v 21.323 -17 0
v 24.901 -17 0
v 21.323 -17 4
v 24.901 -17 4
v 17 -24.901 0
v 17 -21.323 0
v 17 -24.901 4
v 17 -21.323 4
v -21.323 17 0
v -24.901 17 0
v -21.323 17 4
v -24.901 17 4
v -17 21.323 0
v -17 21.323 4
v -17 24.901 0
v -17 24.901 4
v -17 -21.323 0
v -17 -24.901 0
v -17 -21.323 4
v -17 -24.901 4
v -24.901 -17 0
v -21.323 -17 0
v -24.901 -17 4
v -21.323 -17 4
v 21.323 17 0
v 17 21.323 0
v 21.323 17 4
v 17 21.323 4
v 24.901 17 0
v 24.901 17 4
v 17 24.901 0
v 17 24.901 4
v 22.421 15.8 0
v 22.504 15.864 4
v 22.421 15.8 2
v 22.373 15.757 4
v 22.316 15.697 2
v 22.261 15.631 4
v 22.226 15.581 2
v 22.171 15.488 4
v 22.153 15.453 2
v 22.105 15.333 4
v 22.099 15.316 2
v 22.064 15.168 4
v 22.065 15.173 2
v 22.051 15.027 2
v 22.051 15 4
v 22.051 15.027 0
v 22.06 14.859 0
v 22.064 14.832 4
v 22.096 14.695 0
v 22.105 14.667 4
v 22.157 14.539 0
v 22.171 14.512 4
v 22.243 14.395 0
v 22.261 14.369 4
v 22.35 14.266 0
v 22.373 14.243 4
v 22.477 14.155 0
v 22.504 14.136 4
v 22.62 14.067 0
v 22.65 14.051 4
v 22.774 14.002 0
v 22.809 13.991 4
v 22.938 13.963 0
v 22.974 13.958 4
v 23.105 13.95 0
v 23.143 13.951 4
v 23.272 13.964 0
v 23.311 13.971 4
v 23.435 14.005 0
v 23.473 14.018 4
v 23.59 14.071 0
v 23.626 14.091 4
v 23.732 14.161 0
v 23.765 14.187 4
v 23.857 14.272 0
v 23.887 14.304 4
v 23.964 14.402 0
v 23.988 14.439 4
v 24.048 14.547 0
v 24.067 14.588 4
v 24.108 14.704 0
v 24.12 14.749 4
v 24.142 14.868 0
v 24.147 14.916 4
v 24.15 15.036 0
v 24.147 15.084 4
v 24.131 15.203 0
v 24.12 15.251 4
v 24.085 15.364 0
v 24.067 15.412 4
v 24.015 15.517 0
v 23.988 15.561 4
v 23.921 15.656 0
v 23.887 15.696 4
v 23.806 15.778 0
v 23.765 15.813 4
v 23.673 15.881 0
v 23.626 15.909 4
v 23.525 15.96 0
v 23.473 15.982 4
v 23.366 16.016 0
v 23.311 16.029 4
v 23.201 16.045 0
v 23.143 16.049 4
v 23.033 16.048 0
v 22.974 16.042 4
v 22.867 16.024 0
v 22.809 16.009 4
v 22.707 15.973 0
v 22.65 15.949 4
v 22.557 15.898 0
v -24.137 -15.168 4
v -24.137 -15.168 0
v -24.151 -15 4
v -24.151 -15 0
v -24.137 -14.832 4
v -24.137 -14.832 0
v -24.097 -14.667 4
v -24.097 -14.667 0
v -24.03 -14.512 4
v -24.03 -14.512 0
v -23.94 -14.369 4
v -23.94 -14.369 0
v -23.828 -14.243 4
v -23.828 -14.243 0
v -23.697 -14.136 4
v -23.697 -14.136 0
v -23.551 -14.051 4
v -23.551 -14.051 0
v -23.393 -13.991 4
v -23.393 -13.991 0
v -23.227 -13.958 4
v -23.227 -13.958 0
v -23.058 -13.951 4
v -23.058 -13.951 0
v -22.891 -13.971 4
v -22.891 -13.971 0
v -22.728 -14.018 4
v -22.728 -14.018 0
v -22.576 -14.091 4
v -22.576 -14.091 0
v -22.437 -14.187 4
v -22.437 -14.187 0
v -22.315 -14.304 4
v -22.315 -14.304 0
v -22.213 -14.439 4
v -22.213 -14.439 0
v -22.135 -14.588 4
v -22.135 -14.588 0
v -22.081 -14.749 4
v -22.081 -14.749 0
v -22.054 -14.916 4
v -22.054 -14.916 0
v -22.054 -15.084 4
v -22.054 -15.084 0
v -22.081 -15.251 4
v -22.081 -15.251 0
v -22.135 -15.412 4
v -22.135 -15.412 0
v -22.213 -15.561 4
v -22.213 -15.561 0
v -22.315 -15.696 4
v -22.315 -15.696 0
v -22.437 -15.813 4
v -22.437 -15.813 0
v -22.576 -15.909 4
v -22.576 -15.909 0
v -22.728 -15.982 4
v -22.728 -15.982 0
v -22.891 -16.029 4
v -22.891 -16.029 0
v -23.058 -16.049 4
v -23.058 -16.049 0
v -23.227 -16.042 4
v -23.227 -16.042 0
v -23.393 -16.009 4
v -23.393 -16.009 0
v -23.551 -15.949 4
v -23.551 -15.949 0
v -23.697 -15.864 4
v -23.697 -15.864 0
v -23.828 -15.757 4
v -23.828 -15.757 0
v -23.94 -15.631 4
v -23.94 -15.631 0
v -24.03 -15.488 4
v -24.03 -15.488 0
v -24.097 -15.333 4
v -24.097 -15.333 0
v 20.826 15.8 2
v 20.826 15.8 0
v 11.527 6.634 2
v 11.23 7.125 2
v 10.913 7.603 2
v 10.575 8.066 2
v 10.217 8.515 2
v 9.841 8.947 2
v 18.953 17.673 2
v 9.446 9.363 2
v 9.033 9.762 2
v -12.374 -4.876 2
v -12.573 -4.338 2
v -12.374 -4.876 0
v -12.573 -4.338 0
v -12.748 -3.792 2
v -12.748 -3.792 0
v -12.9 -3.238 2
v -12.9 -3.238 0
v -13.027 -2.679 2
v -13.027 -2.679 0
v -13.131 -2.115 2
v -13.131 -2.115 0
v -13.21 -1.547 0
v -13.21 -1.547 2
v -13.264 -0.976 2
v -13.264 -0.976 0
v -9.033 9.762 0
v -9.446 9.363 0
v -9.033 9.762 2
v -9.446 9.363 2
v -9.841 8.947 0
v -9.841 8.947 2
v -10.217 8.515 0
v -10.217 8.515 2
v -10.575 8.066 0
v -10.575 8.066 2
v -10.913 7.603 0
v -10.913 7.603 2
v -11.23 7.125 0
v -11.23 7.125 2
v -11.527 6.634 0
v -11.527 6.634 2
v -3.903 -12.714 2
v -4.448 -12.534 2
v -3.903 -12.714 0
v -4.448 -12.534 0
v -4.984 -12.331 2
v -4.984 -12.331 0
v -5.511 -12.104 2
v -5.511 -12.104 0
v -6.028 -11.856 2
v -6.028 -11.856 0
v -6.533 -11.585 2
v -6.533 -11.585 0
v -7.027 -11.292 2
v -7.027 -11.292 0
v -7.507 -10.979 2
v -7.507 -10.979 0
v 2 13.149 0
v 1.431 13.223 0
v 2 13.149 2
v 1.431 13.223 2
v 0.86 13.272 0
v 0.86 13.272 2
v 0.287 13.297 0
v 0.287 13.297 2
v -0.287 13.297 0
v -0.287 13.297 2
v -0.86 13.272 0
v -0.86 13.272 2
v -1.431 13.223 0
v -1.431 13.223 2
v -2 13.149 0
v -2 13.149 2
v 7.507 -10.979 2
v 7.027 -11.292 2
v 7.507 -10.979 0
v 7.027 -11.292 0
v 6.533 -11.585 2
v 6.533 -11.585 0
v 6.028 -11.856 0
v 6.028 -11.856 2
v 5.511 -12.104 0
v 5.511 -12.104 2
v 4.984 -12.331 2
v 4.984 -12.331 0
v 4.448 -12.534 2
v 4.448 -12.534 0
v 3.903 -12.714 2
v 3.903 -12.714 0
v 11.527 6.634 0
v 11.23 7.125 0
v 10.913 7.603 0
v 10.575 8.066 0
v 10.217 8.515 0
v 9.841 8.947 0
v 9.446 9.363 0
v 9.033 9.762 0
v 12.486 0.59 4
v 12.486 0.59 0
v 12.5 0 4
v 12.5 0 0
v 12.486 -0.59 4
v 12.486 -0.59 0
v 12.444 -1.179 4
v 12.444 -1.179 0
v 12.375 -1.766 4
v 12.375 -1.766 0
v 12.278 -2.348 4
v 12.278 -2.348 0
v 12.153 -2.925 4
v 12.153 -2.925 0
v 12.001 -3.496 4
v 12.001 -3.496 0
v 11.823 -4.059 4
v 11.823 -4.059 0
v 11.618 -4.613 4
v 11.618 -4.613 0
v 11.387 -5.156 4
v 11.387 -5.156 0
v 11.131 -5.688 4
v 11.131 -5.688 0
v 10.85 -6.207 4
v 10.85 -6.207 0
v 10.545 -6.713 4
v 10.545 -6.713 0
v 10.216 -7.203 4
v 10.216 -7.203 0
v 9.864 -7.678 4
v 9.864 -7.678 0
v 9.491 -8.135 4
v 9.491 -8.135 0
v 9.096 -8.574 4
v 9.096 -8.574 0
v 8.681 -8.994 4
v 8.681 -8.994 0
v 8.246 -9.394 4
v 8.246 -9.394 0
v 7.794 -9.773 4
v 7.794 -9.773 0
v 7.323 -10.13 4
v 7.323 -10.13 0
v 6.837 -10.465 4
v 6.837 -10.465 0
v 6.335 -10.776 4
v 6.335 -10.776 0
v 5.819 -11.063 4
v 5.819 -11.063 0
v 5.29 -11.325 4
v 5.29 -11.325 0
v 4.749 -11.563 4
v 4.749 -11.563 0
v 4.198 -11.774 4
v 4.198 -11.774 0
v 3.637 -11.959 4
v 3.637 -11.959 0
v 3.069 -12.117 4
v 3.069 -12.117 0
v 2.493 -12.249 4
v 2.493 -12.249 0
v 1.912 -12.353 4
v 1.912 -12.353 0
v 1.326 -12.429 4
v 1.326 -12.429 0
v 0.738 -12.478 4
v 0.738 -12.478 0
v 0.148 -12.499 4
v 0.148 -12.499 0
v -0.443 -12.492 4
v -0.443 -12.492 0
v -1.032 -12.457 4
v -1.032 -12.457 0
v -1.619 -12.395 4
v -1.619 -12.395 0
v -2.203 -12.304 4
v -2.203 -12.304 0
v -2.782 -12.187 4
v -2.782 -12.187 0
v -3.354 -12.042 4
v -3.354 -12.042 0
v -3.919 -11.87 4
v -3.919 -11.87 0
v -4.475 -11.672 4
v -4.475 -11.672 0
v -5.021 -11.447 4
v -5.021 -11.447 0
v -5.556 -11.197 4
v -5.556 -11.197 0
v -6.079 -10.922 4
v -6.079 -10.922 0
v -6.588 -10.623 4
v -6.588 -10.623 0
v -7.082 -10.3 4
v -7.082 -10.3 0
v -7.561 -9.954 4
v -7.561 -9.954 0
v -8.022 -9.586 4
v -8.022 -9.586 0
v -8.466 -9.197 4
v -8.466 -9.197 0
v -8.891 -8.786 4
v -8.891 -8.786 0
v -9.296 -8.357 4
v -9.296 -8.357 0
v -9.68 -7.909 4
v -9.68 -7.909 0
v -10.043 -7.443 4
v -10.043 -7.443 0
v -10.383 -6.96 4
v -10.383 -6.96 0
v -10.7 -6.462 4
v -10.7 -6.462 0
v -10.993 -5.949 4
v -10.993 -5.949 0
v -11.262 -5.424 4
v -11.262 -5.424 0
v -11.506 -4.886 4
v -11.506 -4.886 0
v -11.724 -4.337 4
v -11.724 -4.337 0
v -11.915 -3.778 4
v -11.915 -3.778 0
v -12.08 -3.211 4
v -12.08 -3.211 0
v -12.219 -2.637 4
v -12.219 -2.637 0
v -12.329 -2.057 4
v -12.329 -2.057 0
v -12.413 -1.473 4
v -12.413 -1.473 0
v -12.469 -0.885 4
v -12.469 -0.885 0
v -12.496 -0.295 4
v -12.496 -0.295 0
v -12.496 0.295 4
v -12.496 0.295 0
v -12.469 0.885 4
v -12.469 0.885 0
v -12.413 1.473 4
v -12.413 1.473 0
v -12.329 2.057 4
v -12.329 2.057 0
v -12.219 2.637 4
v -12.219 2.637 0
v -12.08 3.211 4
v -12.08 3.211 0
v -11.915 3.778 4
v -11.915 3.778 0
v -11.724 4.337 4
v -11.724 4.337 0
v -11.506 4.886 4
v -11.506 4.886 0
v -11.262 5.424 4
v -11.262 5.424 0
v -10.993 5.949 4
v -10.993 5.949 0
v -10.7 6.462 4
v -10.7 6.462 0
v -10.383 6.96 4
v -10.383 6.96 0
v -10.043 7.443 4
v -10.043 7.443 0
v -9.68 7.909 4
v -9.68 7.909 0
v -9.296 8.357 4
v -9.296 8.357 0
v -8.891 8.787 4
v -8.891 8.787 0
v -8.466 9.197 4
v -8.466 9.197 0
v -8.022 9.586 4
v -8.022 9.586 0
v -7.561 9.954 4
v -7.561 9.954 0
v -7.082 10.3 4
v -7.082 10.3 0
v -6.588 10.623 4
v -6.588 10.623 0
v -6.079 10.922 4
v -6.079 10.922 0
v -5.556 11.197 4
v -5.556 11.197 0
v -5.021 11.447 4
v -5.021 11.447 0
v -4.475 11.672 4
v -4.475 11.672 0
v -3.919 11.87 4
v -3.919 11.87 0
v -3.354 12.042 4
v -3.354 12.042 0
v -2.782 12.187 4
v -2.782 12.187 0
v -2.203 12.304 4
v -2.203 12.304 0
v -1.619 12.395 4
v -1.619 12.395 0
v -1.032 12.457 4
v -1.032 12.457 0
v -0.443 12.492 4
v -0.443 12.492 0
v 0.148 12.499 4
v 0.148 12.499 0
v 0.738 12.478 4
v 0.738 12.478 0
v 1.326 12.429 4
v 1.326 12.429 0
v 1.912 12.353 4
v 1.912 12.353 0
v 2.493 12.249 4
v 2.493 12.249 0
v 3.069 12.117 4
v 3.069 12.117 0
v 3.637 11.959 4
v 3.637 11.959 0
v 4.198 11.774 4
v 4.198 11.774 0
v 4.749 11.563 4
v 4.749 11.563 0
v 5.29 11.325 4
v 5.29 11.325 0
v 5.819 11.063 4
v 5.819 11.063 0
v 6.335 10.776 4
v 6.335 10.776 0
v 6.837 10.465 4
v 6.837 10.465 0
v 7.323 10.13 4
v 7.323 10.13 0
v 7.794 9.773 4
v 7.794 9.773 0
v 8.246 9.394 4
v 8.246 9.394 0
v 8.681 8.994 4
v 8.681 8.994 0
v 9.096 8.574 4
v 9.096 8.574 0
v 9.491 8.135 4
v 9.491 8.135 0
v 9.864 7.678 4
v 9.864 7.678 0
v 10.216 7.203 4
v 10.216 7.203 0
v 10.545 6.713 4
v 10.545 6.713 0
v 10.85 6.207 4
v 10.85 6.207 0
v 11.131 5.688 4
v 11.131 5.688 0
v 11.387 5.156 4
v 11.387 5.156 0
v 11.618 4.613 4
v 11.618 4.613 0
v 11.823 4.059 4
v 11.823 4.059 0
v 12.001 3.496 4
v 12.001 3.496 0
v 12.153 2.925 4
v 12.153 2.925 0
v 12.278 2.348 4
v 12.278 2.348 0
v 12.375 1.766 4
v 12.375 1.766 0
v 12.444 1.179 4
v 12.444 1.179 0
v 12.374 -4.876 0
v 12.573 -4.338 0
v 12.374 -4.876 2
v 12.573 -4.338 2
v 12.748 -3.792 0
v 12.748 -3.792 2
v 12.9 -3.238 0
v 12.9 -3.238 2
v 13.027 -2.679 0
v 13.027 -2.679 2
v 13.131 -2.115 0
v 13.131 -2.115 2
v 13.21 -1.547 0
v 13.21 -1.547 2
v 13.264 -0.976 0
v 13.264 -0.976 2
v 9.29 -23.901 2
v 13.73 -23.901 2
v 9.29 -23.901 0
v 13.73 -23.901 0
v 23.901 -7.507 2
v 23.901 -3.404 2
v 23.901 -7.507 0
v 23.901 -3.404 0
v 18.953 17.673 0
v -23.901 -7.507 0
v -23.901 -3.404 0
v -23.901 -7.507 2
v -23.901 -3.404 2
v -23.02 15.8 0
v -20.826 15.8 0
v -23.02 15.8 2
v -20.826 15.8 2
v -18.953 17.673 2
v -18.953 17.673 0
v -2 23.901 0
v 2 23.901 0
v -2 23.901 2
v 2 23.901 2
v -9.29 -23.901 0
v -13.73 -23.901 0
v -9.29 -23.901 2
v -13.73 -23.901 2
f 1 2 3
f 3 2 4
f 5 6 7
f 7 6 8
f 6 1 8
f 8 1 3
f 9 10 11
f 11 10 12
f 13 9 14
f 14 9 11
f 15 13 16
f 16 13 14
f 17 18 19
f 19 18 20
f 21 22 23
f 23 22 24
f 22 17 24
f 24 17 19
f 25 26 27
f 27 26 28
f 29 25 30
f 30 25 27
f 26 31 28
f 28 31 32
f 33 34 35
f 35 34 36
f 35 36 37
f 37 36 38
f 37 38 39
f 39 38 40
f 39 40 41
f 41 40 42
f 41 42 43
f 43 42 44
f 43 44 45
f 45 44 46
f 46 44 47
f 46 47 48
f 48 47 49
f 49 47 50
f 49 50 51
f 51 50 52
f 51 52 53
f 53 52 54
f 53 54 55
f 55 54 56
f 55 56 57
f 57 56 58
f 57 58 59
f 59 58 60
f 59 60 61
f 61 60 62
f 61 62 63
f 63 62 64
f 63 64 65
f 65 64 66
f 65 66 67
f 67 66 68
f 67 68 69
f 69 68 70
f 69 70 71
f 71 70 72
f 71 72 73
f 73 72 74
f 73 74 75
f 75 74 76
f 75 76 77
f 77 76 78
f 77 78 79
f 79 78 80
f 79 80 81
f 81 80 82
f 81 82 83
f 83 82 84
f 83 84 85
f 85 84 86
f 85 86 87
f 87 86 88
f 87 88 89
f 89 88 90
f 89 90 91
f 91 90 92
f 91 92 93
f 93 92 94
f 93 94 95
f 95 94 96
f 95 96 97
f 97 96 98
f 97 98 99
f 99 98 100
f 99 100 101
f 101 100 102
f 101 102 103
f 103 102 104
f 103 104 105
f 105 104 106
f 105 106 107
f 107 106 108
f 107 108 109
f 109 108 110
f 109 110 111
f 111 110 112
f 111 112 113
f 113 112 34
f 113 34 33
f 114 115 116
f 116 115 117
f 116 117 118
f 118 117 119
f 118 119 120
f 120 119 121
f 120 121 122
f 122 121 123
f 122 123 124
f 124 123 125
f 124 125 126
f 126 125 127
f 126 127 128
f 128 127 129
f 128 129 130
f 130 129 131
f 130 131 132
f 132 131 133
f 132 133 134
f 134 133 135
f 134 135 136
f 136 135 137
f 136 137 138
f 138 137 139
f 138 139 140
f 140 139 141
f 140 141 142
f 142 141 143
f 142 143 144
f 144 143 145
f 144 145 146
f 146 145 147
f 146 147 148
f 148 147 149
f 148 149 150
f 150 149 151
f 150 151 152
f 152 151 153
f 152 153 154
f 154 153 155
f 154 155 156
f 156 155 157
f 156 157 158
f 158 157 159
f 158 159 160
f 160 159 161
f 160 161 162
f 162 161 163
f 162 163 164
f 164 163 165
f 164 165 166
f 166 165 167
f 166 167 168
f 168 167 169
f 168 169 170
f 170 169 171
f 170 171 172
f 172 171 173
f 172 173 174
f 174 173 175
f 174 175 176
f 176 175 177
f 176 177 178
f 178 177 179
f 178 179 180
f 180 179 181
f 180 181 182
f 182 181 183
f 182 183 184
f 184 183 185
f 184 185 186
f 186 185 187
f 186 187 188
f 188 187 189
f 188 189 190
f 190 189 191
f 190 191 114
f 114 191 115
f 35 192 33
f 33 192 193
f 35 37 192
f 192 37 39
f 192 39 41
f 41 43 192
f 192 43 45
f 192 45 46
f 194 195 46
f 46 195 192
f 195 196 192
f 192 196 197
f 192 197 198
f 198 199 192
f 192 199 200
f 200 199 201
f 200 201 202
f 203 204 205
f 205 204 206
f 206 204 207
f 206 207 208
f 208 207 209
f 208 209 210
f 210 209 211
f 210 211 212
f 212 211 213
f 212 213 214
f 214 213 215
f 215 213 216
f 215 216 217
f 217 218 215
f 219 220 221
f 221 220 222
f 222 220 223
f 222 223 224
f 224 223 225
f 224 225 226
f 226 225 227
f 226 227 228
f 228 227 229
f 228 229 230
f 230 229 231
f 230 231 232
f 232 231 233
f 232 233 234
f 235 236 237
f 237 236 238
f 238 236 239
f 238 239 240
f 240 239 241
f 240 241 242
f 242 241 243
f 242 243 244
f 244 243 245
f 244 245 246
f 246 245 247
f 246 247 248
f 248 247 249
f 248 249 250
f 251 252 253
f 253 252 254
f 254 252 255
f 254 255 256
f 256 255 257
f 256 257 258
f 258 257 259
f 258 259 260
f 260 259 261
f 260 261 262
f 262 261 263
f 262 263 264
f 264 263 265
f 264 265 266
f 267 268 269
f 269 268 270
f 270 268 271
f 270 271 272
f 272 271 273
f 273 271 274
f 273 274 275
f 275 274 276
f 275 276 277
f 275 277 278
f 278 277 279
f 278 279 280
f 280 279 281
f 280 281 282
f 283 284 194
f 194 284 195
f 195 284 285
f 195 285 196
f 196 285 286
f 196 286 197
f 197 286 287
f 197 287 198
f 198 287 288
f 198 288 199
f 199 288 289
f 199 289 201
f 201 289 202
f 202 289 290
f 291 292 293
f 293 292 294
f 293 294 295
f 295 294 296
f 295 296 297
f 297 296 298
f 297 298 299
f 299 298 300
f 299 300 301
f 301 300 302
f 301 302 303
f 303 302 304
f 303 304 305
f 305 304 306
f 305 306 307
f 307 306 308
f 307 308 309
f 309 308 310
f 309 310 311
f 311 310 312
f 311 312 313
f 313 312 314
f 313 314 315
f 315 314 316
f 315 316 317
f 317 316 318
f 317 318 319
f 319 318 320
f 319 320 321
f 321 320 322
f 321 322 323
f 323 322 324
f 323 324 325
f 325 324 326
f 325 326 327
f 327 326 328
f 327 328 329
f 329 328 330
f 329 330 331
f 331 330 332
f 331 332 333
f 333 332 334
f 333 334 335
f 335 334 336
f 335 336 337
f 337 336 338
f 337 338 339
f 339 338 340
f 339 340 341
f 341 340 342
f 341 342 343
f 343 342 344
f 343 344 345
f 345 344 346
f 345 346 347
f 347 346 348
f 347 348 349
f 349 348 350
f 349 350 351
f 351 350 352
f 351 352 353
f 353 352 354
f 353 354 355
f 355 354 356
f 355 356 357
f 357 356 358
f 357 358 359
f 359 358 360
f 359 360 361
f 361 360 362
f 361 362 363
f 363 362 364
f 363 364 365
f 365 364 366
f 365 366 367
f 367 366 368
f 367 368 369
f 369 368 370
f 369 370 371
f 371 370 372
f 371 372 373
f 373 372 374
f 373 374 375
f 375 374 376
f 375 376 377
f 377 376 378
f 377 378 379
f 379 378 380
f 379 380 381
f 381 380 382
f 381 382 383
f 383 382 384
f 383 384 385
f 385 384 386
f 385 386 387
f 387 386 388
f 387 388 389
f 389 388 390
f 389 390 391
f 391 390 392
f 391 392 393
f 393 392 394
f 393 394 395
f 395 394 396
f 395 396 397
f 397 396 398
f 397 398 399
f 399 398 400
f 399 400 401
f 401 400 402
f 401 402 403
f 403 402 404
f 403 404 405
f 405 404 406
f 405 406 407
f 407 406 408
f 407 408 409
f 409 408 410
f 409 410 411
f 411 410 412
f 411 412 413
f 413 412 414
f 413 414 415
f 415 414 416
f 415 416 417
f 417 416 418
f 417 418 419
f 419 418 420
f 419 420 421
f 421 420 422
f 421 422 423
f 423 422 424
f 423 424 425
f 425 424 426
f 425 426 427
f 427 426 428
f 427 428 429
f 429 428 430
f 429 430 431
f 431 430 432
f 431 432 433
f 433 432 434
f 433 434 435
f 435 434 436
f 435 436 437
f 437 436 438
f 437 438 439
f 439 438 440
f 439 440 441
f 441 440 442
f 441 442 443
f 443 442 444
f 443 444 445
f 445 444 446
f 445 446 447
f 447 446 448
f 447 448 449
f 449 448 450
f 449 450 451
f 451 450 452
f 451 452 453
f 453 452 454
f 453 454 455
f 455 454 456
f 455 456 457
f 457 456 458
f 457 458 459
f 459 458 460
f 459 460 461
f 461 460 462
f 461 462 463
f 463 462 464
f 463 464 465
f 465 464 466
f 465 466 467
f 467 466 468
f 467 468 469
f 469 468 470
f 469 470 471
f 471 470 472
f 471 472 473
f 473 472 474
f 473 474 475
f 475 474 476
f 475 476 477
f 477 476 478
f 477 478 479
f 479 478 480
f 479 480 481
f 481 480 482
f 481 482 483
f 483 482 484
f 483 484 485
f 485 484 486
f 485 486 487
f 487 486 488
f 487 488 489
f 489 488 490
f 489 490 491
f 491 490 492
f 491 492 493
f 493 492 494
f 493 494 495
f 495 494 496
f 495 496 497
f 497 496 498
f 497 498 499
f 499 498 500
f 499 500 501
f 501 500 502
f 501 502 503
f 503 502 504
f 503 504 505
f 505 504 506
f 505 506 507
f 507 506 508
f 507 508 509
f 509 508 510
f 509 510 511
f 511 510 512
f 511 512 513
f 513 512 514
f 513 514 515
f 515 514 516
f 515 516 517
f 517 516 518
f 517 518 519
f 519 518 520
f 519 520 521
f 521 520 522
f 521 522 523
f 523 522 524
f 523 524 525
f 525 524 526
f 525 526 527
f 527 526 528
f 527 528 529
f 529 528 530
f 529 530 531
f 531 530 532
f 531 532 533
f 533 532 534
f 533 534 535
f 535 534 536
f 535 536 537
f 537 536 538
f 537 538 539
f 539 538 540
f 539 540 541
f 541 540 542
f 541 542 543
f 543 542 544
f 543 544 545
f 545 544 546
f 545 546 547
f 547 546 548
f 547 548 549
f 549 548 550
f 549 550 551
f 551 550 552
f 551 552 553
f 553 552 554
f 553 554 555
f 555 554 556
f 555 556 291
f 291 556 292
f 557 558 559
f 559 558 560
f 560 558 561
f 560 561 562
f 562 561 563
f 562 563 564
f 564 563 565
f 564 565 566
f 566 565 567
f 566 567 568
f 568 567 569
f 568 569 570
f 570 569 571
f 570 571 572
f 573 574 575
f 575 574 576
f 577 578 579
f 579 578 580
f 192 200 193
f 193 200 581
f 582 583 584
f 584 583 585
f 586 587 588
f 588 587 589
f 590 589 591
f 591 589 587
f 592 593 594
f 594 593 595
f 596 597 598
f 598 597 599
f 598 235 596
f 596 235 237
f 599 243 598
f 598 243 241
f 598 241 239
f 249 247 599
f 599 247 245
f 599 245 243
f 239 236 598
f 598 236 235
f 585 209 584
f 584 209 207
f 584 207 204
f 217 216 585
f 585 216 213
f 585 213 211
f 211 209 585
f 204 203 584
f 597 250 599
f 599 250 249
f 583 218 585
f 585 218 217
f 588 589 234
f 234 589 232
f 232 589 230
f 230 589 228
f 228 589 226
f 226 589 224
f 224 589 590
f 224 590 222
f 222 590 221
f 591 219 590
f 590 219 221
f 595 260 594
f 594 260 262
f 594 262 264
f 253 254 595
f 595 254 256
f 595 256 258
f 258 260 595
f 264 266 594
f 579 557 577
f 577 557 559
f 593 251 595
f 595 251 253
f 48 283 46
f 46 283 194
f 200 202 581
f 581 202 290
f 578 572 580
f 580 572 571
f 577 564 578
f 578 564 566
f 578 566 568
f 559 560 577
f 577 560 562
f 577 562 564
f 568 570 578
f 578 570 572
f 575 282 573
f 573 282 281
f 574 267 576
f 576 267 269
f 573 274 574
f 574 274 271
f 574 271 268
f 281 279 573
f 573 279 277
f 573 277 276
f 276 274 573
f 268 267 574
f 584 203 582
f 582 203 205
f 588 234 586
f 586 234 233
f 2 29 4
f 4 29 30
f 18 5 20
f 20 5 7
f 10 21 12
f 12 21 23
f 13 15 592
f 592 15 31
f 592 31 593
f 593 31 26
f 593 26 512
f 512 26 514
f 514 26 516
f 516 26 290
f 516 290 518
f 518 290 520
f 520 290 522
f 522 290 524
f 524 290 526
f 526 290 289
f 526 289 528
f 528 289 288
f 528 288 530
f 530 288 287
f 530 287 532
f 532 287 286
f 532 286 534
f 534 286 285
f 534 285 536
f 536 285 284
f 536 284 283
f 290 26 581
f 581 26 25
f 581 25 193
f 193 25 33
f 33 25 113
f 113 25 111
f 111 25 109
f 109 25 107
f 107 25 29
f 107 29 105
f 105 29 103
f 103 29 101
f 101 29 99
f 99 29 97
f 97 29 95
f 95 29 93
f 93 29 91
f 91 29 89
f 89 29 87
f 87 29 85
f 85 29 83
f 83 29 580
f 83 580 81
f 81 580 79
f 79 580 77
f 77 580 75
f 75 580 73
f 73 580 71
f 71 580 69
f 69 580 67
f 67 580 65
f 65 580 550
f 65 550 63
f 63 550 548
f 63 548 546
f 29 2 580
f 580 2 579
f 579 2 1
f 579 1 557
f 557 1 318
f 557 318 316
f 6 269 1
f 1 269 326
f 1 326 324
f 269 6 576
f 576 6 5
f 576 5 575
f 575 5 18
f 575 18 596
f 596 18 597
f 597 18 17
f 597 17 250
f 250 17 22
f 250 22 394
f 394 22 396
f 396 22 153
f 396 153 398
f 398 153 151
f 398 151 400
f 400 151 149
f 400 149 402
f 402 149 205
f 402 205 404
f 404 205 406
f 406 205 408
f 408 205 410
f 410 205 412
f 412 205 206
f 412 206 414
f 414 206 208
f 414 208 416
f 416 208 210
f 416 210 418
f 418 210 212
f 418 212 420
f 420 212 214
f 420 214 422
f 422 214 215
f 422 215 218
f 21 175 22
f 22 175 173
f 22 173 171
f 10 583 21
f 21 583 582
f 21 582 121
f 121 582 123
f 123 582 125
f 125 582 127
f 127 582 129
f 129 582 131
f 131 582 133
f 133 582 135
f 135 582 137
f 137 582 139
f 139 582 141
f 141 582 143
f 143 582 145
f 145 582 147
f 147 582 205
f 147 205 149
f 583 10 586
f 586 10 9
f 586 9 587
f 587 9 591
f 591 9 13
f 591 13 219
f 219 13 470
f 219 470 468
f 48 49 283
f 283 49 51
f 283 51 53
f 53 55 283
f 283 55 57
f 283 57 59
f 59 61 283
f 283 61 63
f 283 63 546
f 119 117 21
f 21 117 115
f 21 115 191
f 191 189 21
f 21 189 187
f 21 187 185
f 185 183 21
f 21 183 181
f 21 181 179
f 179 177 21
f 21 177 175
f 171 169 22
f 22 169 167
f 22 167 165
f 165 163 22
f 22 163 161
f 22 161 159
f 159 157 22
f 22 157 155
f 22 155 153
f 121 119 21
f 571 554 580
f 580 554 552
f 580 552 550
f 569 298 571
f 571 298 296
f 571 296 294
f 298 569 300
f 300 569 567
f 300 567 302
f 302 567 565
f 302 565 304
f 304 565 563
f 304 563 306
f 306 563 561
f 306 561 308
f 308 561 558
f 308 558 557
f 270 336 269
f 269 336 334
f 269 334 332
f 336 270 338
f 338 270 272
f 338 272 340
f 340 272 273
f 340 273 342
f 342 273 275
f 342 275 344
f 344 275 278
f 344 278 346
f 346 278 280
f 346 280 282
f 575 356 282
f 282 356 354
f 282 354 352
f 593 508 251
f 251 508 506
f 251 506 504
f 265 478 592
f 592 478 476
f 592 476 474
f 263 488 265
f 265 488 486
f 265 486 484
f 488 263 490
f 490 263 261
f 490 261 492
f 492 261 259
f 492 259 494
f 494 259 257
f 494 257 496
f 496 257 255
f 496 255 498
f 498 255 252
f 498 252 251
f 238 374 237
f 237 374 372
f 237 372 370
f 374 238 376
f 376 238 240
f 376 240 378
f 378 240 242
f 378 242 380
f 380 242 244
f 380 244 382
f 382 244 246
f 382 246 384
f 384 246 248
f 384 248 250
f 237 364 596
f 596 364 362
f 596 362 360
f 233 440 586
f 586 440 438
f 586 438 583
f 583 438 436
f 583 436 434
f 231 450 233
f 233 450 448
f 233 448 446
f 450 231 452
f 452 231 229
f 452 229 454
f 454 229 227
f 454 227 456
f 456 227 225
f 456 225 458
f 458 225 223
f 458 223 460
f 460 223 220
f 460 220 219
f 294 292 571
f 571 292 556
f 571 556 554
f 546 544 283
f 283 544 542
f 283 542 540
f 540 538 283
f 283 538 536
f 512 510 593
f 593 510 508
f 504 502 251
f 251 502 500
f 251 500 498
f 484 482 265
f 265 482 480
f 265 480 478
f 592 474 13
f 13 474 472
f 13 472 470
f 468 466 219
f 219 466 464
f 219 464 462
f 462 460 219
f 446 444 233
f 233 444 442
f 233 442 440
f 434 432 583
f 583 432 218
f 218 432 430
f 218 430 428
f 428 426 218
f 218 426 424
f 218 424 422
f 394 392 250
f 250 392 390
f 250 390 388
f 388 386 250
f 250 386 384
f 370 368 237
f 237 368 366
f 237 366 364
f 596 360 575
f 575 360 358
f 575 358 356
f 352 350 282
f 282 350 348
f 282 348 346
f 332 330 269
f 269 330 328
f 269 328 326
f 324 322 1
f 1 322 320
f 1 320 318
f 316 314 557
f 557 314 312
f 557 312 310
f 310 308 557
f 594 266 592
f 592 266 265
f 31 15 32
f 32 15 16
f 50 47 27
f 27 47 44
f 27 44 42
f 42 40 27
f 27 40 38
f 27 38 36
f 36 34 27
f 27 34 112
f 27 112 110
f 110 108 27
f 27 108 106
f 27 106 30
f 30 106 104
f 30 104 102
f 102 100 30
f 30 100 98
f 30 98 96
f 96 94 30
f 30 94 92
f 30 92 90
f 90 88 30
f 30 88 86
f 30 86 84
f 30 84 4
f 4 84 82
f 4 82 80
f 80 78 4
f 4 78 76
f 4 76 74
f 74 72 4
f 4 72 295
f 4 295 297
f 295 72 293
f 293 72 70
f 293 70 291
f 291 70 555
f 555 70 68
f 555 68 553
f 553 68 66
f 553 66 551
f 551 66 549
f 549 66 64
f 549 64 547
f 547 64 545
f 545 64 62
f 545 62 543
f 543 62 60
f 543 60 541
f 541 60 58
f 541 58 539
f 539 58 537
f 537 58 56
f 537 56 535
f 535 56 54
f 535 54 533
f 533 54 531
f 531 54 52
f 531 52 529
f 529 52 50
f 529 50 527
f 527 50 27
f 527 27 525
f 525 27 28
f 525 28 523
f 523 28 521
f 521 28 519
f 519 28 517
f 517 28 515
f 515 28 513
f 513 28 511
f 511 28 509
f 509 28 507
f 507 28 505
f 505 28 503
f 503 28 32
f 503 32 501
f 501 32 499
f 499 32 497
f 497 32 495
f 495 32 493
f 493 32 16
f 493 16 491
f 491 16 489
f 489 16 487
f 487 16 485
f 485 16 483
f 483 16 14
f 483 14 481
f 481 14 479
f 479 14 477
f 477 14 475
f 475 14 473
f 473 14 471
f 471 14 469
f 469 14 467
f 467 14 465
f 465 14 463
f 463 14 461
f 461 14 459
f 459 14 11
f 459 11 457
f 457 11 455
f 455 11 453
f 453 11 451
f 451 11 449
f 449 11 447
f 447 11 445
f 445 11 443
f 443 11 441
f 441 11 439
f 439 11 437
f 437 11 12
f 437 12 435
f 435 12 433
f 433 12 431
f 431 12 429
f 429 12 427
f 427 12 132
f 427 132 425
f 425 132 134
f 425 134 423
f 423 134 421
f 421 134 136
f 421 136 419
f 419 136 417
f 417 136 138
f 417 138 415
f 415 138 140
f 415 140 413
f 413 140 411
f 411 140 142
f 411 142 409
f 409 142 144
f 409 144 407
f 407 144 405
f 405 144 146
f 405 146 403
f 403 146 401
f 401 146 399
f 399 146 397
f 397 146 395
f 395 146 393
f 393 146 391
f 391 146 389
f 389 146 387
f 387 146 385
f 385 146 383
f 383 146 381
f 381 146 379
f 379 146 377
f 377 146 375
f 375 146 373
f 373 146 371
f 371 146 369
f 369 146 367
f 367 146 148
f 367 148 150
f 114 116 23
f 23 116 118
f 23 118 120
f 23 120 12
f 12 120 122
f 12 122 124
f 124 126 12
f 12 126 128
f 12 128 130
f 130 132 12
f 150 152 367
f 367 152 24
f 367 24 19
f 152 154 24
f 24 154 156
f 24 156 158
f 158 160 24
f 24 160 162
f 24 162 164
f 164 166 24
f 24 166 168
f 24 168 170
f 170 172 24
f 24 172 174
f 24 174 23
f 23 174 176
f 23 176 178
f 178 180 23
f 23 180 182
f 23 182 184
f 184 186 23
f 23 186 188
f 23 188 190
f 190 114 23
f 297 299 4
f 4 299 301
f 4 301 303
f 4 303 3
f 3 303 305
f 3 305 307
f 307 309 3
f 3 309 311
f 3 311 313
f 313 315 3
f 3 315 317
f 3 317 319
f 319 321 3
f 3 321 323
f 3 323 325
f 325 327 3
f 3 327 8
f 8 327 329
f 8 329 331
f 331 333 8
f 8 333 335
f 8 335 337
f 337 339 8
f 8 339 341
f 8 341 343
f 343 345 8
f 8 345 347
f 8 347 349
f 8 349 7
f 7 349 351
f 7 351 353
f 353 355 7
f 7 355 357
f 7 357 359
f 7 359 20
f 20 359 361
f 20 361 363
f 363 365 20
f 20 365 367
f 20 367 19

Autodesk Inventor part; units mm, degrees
ref_plane "YZ Plane" through (0, 0, 0) normal (1, 0, 0) x (0, 1, 0)
ref_plane "XZ Plane" through (0, 0, 0) normal (0, 1, 0) x (-1, 0, 0)
ref_plane "XY Plane" through (0, 0, 0) normal (0, 0, 1) x (1, 0, 0)
sketch "Sketch1" plane through (0, 0, 0) normal (0, 0, 1) x (1, 0, 0)
  line L0 (-34.8609, 0) -> (34.8609, 0) construction
  line L1 (0, -34.8609) -> (0, 34.8609) construction
  line L2 (0, 0) -> (11.6542, 11.6542) construction
  line L3 (0, 0) -> (16.4815, 0) construction
  line L4 (0, 24.9006) -> (16.8, 24.9006)
  line L5 (16.8, 24.9006) -> (16.8, 21.2406)
  line L6 (16.8, 21.2406) -> (19.0203, 19.0203)
  line L7 (24.9006, 0) -> (24.9006, 16.8)
  line L8 (24.9006, 16.8) -> (21.2406, 16.8)
  line L9 (21.2406, 16.8) -> (19.0203, 19.0203)
  line L10 (0, 0) -> (-11.6542, 11.6542) construction
  line L11 (0, 0) -> (-16.4815, 0) construction
  line L12 (0, 24.9006) -> (-16.8, 24.9006)
  line L13 (-16.8, 24.9006) -> (-16.8, 21.2406)
  line L14 (-16.8, 21.2406) -> (-19.0203, 19.0203)
  line L15 (-24.9006, 0) -> (-24.9006, 16.8)
  line L16 (-24.9006, 16.8) -> (-21.2406, 16.8)
  line L17 (-21.2406, 16.8) -> (-19.0203, 19.0203)
  line L18 (0, 0) -> (11.6542, -11.6542) construction
  line L19 (0, -24.9006) -> (16.8, -24.9006)
  line L20 (16.8, -24.9006) -> (16.8, -21.2406)
  line L21 (16.8, -21.2406) -> (19.0203, -19.0203)
  line L22 (24.9006, 0) -> (24.9006, -16.8)
  line L23 (24.9006, -16.8) -> (21.2406, -16.8)
  line L24 (21.2406, -16.8) -> (19.0203, -19.0203)
  line L25 (0, 0) -> (-11.6542, -11.6542) construction
  line L26 (0, -24.9006) -> (-16.8, -24.9006)
  line L27 (-16.8, -24.9006) -> (-16.8, -21.2406)
  line L28 (-16.8, -21.2406) -> (-19.0203, -19.0203)
  line L29 (-24.9006, 0) -> (-24.9006, -16.8)
  line L30 (-24.9006, -16.8) -> (-21.2406, -16.8)
  line L31 (-21.2406, -16.8) -> (-19.0203, -19.0203)
  dimension "d0" = 45
  dimension "d1" = 3.14
  dimension "d2" = 3.66
  dimension "d3" = 16.8
extrude "Extrusion1" add sketch "Sketch1" along normal blind 4
hole "Hole1" at (0, 0, 0) direction (0, 0, 1) diameter 26.6 end through all
sketch "Sketch6" plane through (0, 0, 4) normal (0, 0, 1) x (1, 0, 0)
  circle A0 centre (0, 0) radius 13.3 construction
  line L0 (16.8, 24.9006) -> (-16.8, 24.9006) construction
  line L1 (-16.8, 24.9006) -> (-16.8, 21.2406) construction
  line L2 (-16.8, 21.2406) -> (-21.2406, 16.8) construction
  line L3 (-21.2406, 16.8) -> (-24.9006, 16.8) construction
  line L4 (-24.9006, 16.8) -> (-24.9006, -16.8) construction
  line L5 (-24.9006, -16.8) -> (-21.2406, -16.8) construction
  line L6 (-21.2406, -16.8) -> (-16.8, -21.2406) construction
  line L7 (-16.8, -21.2406) -> (-16.8, -24.9006) construction
  line L8 (-16.8, -24.9006) -> (16.8, -24.9006) construction
  line L9 (16.8, -24.9006) -> (16.8, -21.2406) construction
  line L10 (16.8, -21.2406) -> (21.2406, -16.8) construction
  line L11 (21.2406, -16.8) -> (24.9006, -16.8) construction
  line L12 (24.9006, -16.8) -> (24.9006, 16.8) construction
  line L13 (24.9006, 16.8) -> (21.2406, 16.8) construction
  line L14 (21.2406, 16.8) -> (16.8, 21.2406) construction
  line L15 (16.8, 21.2406) -> (16.8, 24.9006) construction
  circle A1 centre (0, 0) radius 13.3
  circle A2 centre (0, 0) radius 13.5
  dimension "d42" = 26.6
  dimension "d43" = 27
extrude "Extrusion4" [suppressed]
sketch "Sketch7" plane through (0, 0, 0) normal (0, 0, -1) x (-1, 0, 0)
  line L0 (16.8, 24.9006) -> (-16.8, 24.9006) construction
  line L1 (-16.8, 24.9006) -> (-16.8, 21.2406) construction
  line L2 (-16.8, 21.2406) -> (-21.2406, 16.8) construction
  line L3 (-21.2406, 16.8) -> (-24.9006, 16.8) construction
  line L4 (-24.9006, 16.8) -> (-24.9006, -16.8) construction
  line L5 (-24.9006, -16.8) -> (-21.2406, -16.8) construction
  line L6 (-21.2406, -16.8) -> (-16.8, -21.2406) construction
  line L7 (-16.8, -21.2406) -> (-16.8, -24.9006) construction
  line L8 (-16.8, -24.9006) -> (16.8, -24.9006) construction
  line L9 (16.8, -24.9006) -> (16.8, -21.2406) construction
  line L10 (16.8, -21.2406) -> (21.2406, -16.8) construction
  line L11 (21.2406, -16.8) -> (24.9006, -16.8) construction
  line L12 (24.9006, -16.8) -> (24.9006, 16.8) construction
  line L13 (24.9006, 16.8) -> (21.2406, 16.8) construction
  line L14 (21.2406, 16.8) -> (16.8, 21.2406) construction
  line L15 (16.8, 21.2406) -> (16.8, 24.9006) construction
  line L16 (-2.0147, 24.1761) -> (-2, 24) construction
  line L17 (-1.9775, 24.0019) -> (-1.9921, 24.178) construction
  line L18 (1.9921, 24.178) -> (1.9775, 24.0019) construction
  line L19 (2, 24) -> (2.0147, 24.1761) construction
  line L20 (5.9445, 23.5204) -> (5.9012, 23.349) construction
  line L21 (5.923, 23.3435) -> (5.9665, 23.5148) construction
  line L22 (9.7347, 22.2212) -> (9.6638, 22.0593) construction
  line L23 (9.6844, 22.0502) -> (9.7555, 22.212) construction
  line L24 (13.2594, 20.3158) -> (13.1628, 20.1678) construction
  line L25 (13.1817, 20.1555) -> (13.2784, 20.3034) construction
  line L26 (16.4225, 17.8563) -> (16.3028, 17.7262) construction
  line L27 (16.3194, 17.7109) -> (16.4392, 17.8409) construction
  line L28 (19.1375, 14.9097) -> (18.9981, 14.8011) construction
  line L29 (19.0119, 14.7833) -> (19.1515, 14.8918) construction
  line L30 (21.3306, 11.5564) -> (21.1752, 11.4722) construction
  line L31 (21.1859, 11.4524) -> (21.3414, 11.5365) construction
  line L32 (22.9418, 7.8879) -> (22.7746, 7.8305) construction
  line L33 (22.782, 7.8091) -> (22.9492, 7.8665) construction
  line L34 (23.9272, 4.0042) -> (23.7529, 3.9751) construction
  line L35 (23.7566, 3.9529) -> (23.9309, 3.9819) construction
  line L36 (24.2599, 0.0113) -> (24.0832, 0.0113) construction
  line L37 (24.0832, -0.0113) -> (24.2599, -0.0113) construction
  line L38 (23.9309, -3.9819) -> (23.7566, -3.9529) construction
  line L39 (23.7529, -3.9751) -> (23.9272, -4.0042) construction
  line L40 (22.9492, -7.8665) -> (22.782, -7.8091) construction
  line L41 (22.7746, -7.8305) -> (22.9418, -7.8879) construction
  line L42 (21.3414, -11.5365) -> (21.1859, -11.4524) construction
  line L43 (21.1752, -11.4722) -> (21.3306, -11.5564) construction
  line L44 (19.1515, -14.8918) -> (19.0119, -14.7833) construction
  line L45 (18.9981, -14.8011) -> (19.1375, -14.9097) construction
  line L46 (16.4392, -17.8409) -> (16.3194, -17.7109) construction
  line L47 (16.3028, -17.7262) -> (16.4225, -17.8563) construction
  line L48 (13.2784, -20.3034) -> (13.1817, -20.1555) construction
  line L49 (13.1628, -20.1678) -> (13.2594, -20.3158) construction
  line L50 (9.7555, -22.212) -> (9.6844, -22.0502) construction
  line L51 (9.6638, -22.0593) -> (9.7347, -22.2212) construction
  line L52 (5.9665, -23.5148) -> (5.923, -23.3435) construction
  line L53 (5.9012, -23.349) -> (5.9445, -23.5204) construction
  line L54 (2.0147, -24.1761) -> (2, -24) construction
  line L55 (1.9775, -24.0019) -> (1.9921, -24.178) construction
  line L56 (-1.9921, -24.178) -> (-1.9775, -24.0019) construction
  line L57 (-2, -24) -> (-2.0147, -24.1761) construction
  line L58 (-5.9445, -23.5204) -> (-5.9012, -23.349) construction
  line L59 (-5.923, -23.3435) -> (-5.9665, -23.5148) construction
  line L60 (-9.7347, -22.2212) -> (-9.6638, -22.0593) construction
  line L61 (-9.6844, -22.0502) -> (-9.7555, -22.212) construction
  line L62 (-13.2594, -20.3158) -> (-13.1628, -20.1678) construction
  line L63 (-13.1817, -20.1555) -> (-13.2784, -20.3034) construction
  line L64 (-16.4225, -17.8563) -> (-16.3028, -17.7262) construction
  line L65 (-16.3194, -17.7109) -> (-16.4392, -17.8409) construction
  line L66 (-19.1375, -14.9097) -> (-18.9981, -14.8011) construction
  line L67 (-19.0119, -14.7833) -> (-19.1515, -14.8918) construction
  line L68 (-21.3306, -11.5564) -> (-21.1752, -11.4722) construction
  line L69 (-21.1859, -11.4524) -> (-21.3414, -11.5365) construction
  line L70 (-22.9418, -7.8879) -> (-22.7746, -7.8305) construction
  line L71 (-22.782, -7.8091) -> (-22.9492, -7.8665) construction
  line L72 (-23.9272, -4.0042) -> (-23.7529, -3.9751) construction
  line L73 (-23.7566, -3.9529) -> (-23.9309, -3.9819) construction
  line L74 (-24.2599, -0.0113) -> (-24.0832, -0.0113) construction
  line L75 (-24.0832, 0.0113) -> (-24.2599, 0.0113) construction
  line L76 (-23.9309, 3.9819) -> (-23.7566, 3.9529) construction
  line L77 (-23.7529, 3.9751) -> (-23.9272, 4.0042) construction
  line L78 (-22.9492, 7.8665) -> (-22.782, 7.8091) construction
  line L79 (-22.7746, 7.8305) -> (-22.9418, 7.8879) construction
  line L80 (-21.3414, 11.5365) -> (-21.1859, 11.4524) construction
  line L81 (-21.1752, 11.4722) -> (-21.3306, 11.5564) construction
  line L82 (-19.1515, 14.8918) -> (-19.0119, 14.7833) construction
  line L83 (-18.9981, 14.8011) -> (-19.1375, 14.9097) construction
  line L84 (-16.4392, 17.8409) -> (-16.3194, 17.7109) construction
  line L85 (-16.3028, 17.7262) -> (-16.4225, 17.8563) construction
  line L86 (-13.2784, 20.3034) -> (-13.1817, 20.1555) construction
  line L87 (-13.1628, 20.1678) -> (-13.2594, 20.3158) construction
  line L88 (-9.7555, 22.212) -> (-9.6844, 22.0502) construction
  line L89 (-9.6638, 22.0593) -> (-9.7347, 22.2212) construction
  line L90 (-5.9665, 23.5148) -> (-5.923, 23.3435) construction
  line L91 (-5.9012, 23.349) -> (-5.9445, 23.5204) construction
  circle A0 centre (0, 24.5946) radius 2 construction
  line L92 (2, 33.2113) -> (-2, 33.2113)
  line L93 (-2, 33.2113) -> (-2, 6.8481)
  line L94 (-2, 6.8481) -> (2, 6.8481)
  line L95 (2, 6.8481) -> (2, 33.2113)
  circle A1 centre (-17.7867, 14.1844) radius 1.25 projected
  circle A2 centre (-22.1796, -5.0624) radius 1.25 projected
  circle A3 centre (-9.8709, -20.497) radius 1.25 projected
  circle A4 centre (9.8709, -20.497) radius 1.25 projected
  circle A5 centre (22.1796, -5.0624) radius 1.25 projected
  circle A6 centre (17.7867, 14.1844) radius 1.25 projected
  circle A7 centre (0, 22.75) radius 1.25 projected
  arc A8 (-2.0147, 24.1761) -> (-5.9445, 23.5204) centre (-3.9503, 23.6727) ccw projected
  arc A9 (-1.9973, 24.1039) -> (-2, 24) centre (0, 24) ccw projected
  arc A10 (-1.9775, 24.0019) -> (-1.9973, 24.1039) centre (-3.9503, 23.6727) ccw projected
  arc A11 (1.9921, 24.178) -> (-1.9921, 24.178) centre (0, 24) ccw projected
  arc A12 (1.9973, 24.1039) -> (1.9775, 24.0019) centre (3.9503, 23.6727) ccw projected
  arc A13 (2, 24) -> (1.9973, 24.1039) centre (0, 24) ccw projected
  arc A14 (5.9445, 23.5204) -> (2.0147, 24.1761) centre (3.9503, 23.6727) ccw projected
  arc A15 (5.9374, 23.4464) -> (5.9012, 23.349) centre (7.7928, 22.6996) ccw projected
  arc A16 (5.923, 23.3435) -> (5.9374, 23.4464) centre (3.9503, 23.6727) ccw projected
  arc A17 (9.7347, 22.2212) -> (5.9665, 23.5148) centre (7.7928, 22.6996) ccw projected
  arc A18 (9.7156, 22.1493) -> (9.6638, 22.0593) centre (11.4227, 21.1074) ccw projected
  arc A19 (9.6844, 22.0502) -> (9.7156, 22.1493) centre (7.7928, 22.6996) ccw projected
  arc A20 (13.2594, 20.3158) -> (9.7555, 22.212) centre (11.4227, 21.1074) ccw projected
  arc A21 (13.2287, 20.2481) -> (13.1628, 20.1678) centre (14.7411, 18.9394) ccw projected
  arc A22 (13.1817, 20.1555) -> (13.2287, 20.2481) centre (11.4227, 21.1074) ccw projected
  arc A23 (16.4225, 17.8563) -> (13.2784, 20.3034) centre (14.7411, 18.9394) ccw projected
  arc A24 (16.381, 17.7946) -> (16.3028, 17.7262) centre (17.6574, 16.2548) ccw projected
  arc A25 (16.3194, 17.7109) -> (16.381, 17.7946) centre (14.7411, 18.9394) ccw projected
  arc A26 (19.1375, 14.9097) -> (16.4392, 17.8409) centre (17.6574, 16.2548) ccw projected
  arc A27 (19.0865, 14.8556) -> (18.9981, 14.8011) centre (20.092, 13.1268) ccw projected
  arc A28 (19.0119, 14.7833) -> (19.0865, 14.8556) centre (17.6574, 16.2548) ccw projected
  arc A29 (21.3306, 11.5564) -> (19.1515, 14.8918) centre (20.092, 13.1268) ccw projected
  arc A30 (21.2714, 11.5115) -> (21.1752, 11.4722) centre (21.9786, 9.6407) ccw projected
  arc A31 (21.1859, 11.4524) -> (21.2714, 11.5115) centre (20.092, 13.1268) ccw projected
  arc A32 (22.9418, 7.8879) -> (21.3414, 11.5365) centre (21.9786, 9.6407) ccw projected
  arc A33 (22.876, 7.8533) -> (22.7746, 7.8305) centre (23.2656, 5.8917) ccw projected
  arc A34 (22.782, 7.8091) -> (22.876, 7.8533) centre (21.9786, 9.6407) ccw projected
  arc A35 (23.9272, 4.0042) -> (22.9492, 7.8665) centre (23.2656, 5.8917) ccw projected
  arc A36 (23.8566, 3.981) -> (23.7529, 3.9751) centre (23.918, 1.9819) ccw projected
  arc A37 (23.7566, 3.9529) -> (23.8566, 3.981) centre (23.2656, 5.8917) ccw projected
  arc A38 (24.2599, 0.0113) -> (23.9309, 3.9819) centre (23.918, 1.9819) ccw projected
  arc A39 (24.1865, 0) -> (24.0832, 0.0113) centre (23.918, -1.9819) ccw projected
  arc A40 (24.0832, -0.0113) -> (24.1865, 0) centre (23.918, 1.9819) ccw projected
  arc A41 (23.9309, -3.9819) -> (24.2599, -0.0113) centre (23.918, -1.9819) ccw projected
  arc A42 (23.8566, -3.981) -> (23.7566, -3.9529) centre (23.2656, -5.8917) ccw projected
  arc A43 (23.7529, -3.9751) -> (23.8566, -3.981) centre (23.918, -1.9819) ccw projected
  arc A44 (22.9492, -7.8665) -> (23.9272, -4.0042) centre (23.2656, -5.8917) ccw projected
  arc A45 (22.876, -7.8533) -> (22.782, -7.8091) centre (21.9786, -9.6407) ccw projected
  arc A46 (22.7746, -7.8305) -> (22.876, -7.8533) centre (23.2656, -5.8917) ccw projected
  arc A47 (21.3414, -11.5365) -> (22.9418, -7.8879) centre (21.9786, -9.6407) ccw projected
  arc A48 (21.2714, -11.5115) -> (21.1859, -11.4524) centre (20.092, -13.1268) ccw projected
  arc A49 (21.1752, -11.4722) -> (21.2714, -11.5115) centre (21.9786, -9.6407) ccw projected
  arc A50 (19.1515, -14.8918) -> (21.3306, -11.5564) centre (20.092, -13.1268) ccw projected
  arc A51 (19.0865, -14.8556) -> (19.0119, -14.7833) centre (17.6574, -16.2548) ccw projected
  arc A52 (18.9981, -14.8011) -> (19.0865, -14.8556) centre (20.092, -13.1268) ccw projected
  arc A53 (16.4392, -17.8409) -> (19.1375, -14.9097) centre (17.6574, -16.2548) ccw projected
  arc A54 (16.381, -17.7946) -> (16.3194, -17.7109) centre (14.7411, -18.9394) ccw projected
  arc A55 (16.3028, -17.7262) -> (16.381, -17.7946) centre (17.6574, -16.2548) ccw projected
  arc A56 (13.2784, -20.3034) -> (16.4225, -17.8563) centre (14.7411, -18.9394) ccw projected
  arc A57 (13.2287, -20.2481) -> (13.1817, -20.1555) centre (11.4227, -21.1074) ccw projected
  arc A58 (13.1628, -20.1678) -> (13.2287, -20.2481) centre (14.7411, -18.9394) ccw projected
  arc A59 (9.7555, -22.212) -> (13.2594, -20.3158) centre (11.4227, -21.1074) ccw projected
  arc A60 (9.7156, -22.1493) -> (9.6844, -22.0502) centre (7.7928, -22.6996) ccw projected
  arc A61 (9.6638, -22.0593) -> (9.7156, -22.1493) centre (11.4227, -21.1074) ccw projected
  arc A62 (5.9665, -23.5148) -> (9.7347, -22.2212) centre (7.7928, -22.6996) ccw projected
  arc A63 (5.9374, -23.4464) -> (5.923, -23.3435) centre (3.9503, -23.6727) ccw projected
  arc A64 (5.9012, -23.349) -> (5.9374, -23.4464) centre (7.7928, -22.6996) ccw projected
  arc A65 (2.0147, -24.1761) -> (5.9445, -23.5204) centre (3.9503, -23.6727) ccw projected
  arc A66 (1.9973, -24.1039) -> (2, -24) centre (0, -24) ccw projected
  arc A67 (1.9775, -24.0019) -> (1.9973, -24.1039) centre (3.9503, -23.6727) ccw projected
  arc A68 (-1.9921, -24.178) -> (1.9921, -24.178) centre (0, -24) ccw projected
  arc A69 (-1.9973, -24.1039) -> (-1.9775, -24.0019) centre (-3.9503, -23.6727) ccw projected
  arc A70 (-2, -24) -> (-1.9973, -24.1039) centre (0, -24) ccw projected
  arc A71 (-5.9445, -23.5204) -> (-2.0147, -24.1761) centre (-3.9503, -23.6727) ccw projected
  arc A72 (-5.9374, -23.4464) -> (-5.9012, -23.349) centre (-7.7928, -22.6996) ccw projected
  arc A73 (-5.923, -23.3435) -> (-5.9374, -23.4464) centre (-3.9503, -23.6727) ccw projected
  arc A74 (-9.7347, -22.2212) -> (-5.9665, -23.5148) centre (-7.7928, -22.6996) ccw projected
  arc A75 (-9.7156, -22.1493) -> (-9.6638, -22.0593) centre (-11.4227, -21.1074) ccw projected
  arc A76 (-9.6844, -22.0502) -> (-9.7156, -22.1493) centre (-7.7928, -22.6996) ccw projected
  arc A77 (-13.2594, -20.3158) -> (-9.7555, -22.212) centre (-11.4227, -21.1074) ccw projected
  arc A78 (-13.2287, -20.2481) -> (-13.1628, -20.1678) centre (-14.7411, -18.9394) ccw projected
  arc A79 (-13.1817, -20.1555) -> (-13.2287, -20.2481) centre (-11.4227, -21.1074) ccw projected
  arc A80 (-16.4225, -17.8563) -> (-13.2784, -20.3034) centre (-14.7411, -18.9394) ccw projected
  arc A81 (-16.381, -17.7946) -> (-16.3028, -17.7262) centre (-17.6574, -16.2548) ccw projected
  arc A82 (-16.3194, -17.7109) -> (-16.381, -17.7946) centre (-14.7411, -18.9394) ccw projected
  arc A83 (-19.1375, -14.9097) -> (-16.4392, -17.8409) centre (-17.6574, -16.2548) ccw projected
  arc A84 (-19.0865, -14.8556) -> (-18.9981, -14.8011) centre (-20.092, -13.1268) ccw projected
  arc A85 (-19.0119, -14.7833) -> (-19.0865, -14.8556) centre (-17.6574, -16.2548) ccw projected
  arc A86 (-21.3306, -11.5564) -> (-19.1515, -14.8918) centre (-20.092, -13.1268) ccw projected
  arc A87 (-21.2714, -11.5115) -> (-21.1752, -11.4722) centre (-21.9786, -9.6407) ccw projected
  arc A88 (-21.1859, -11.4524) -> (-21.2714, -11.5115) centre (-20.092, -13.1268) ccw projected
  arc A89 (-22.9418, -7.8879) -> (-21.3414, -11.5365) centre (-21.9786, -9.6407) ccw projected
  arc A90 (-22.876, -7.8533) -> (-22.7746, -7.8305) centre (-23.2656, -5.8917) ccw projected
  arc A91 (-22.782, -7.8091) -> (-22.876, -7.8533) centre (-21.9786, -9.6407) ccw projected
  arc A92 (-23.9272, -4.0042) -> (-22.9492, -7.8665) centre (-23.2656, -5.8917) ccw projected
  arc A93 (-23.8566, -3.981) -> (-23.7529, -3.9751) centre (-23.918, -1.9819) ccw projected
  arc A94 (-23.7566, -3.9529) -> (-23.8566, -3.981) centre (-23.2656, -5.8917) ccw projected
  arc A95 (-24.2599, -0.0113) -> (-23.9309, -3.9819) centre (-23.918, -1.9819) ccw projected
  arc A96 (-24.1865, 0) -> (-24.0832, -0.0113) centre (-23.918, 1.9819) ccw projected
  arc A97 (-24.0832, 0.0113) -> (-24.1865, 0) centre (-23.918, -1.9819) ccw projected
  arc A98 (-23.9309, 3.9819) -> (-24.2599, 0.0113) centre (-23.918, 1.9819) ccw projected
  arc A99 (-23.8566, 3.981) -> (-23.7566, 3.9529) centre (-23.2656, 5.8917) ccw projected
  arc A100 (-23.7529, 3.9751) -> (-23.8566, 3.981) centre (-23.918, 1.9819) ccw projected
  arc A101 (-22.9492, 7.8665) -> (-23.9272, 4.0042) centre (-23.2656, 5.8917) ccw projected
  arc A102 (-22.876, 7.8533) -> (-22.782, 7.8091) centre (-21.9786, 9.6407) ccw projected
  arc A103 (-22.7746, 7.8305) -> (-22.876, 7.8533) centre (-23.2656, 5.8917) ccw projected
  arc A104 (-21.3414, 11.5365) -> (-22.9418, 7.8879) centre (-21.9786, 9.6407) ccw projected
  arc A105 (-21.2714, 11.5115) -> (-21.1859, 11.4524) centre (-20.092, 13.1268) ccw projected
  arc A106 (-21.1752, 11.4722) -> (-21.2714, 11.5115) centre (-21.9786, 9.6407) ccw projected
  arc A107 (-19.1515, 14.8918) -> (-21.3306, 11.5564) centre (-20.092, 13.1268) ccw projected
  arc A108 (-19.0865, 14.8556) -> (-19.0119, 14.7833) centre (-17.6574, 16.2548) ccw projected
  arc A109 (-18.9981, 14.8011) -> (-19.0865, 14.8556) centre (-20.092, 13.1268) ccw projected
  arc A110 (-16.4392, 17.8409) -> (-19.1375, 14.9097) centre (-17.6574, 16.2548) ccw projected
  arc A111 (-16.381, 17.7946) -> (-16.3194, 17.7109) centre (-14.7411, 18.9394) ccw projected
  arc A112 (-16.3028, 17.7262) -> (-16.381, 17.7946) centre (-17.6574, 16.2548) ccw projected
  arc A113 (-13.2784, 20.3034) -> (-16.4225, 17.8563) centre (-14.7411, 18.9394) ccw projected
  arc A114 (-13.2287, 20.2481) -> (-13.1817, 20.1555) centre (-11.4227, 21.1074) ccw projected
  arc A115 (-13.1628, 20.1678) -> (-13.2287, 20.2481) centre (-14.7411, 18.9394) ccw projected
  arc A116 (-9.7555, 22.212) -> (-13.2594, 20.3158) centre (-11.4227, 21.1074) ccw projected
  arc A117 (-9.7156, 22.1493) -> (-9.6844, 22.0502) centre (-7.7928, 22.6996) ccw projected
  arc A118 (-9.6638, 22.0593) -> (-9.7156, 22.1493) centre (-11.4227, 21.1074) ccw projected
  arc A119 (-5.9665, 23.5148) -> (-9.7347, 22.2212) centre (-7.7928, 22.6996) ccw projected
  arc A120 (-5.9374, 23.4464) -> (-5.923, 23.3435) centre (-3.9503, 23.6727) ccw projected
  arc A121 (-5.9012, 23.349) -> (-5.9374, 23.4464) centre (-7.7928, 22.6996) ccw projected
  circle A122 centre (0, 0) radius 21 projected
  point P0 (0, 0)
  point P1 (3.35, 15.4344)
  point P2 (3.35, -6.3124)
  point P3 (3.35, 24.1039)
  point P4 (3.35, 24.1039)
  point P5 (3.35, 25.6727)
  point P6 (3.35, 23.4464)
  point P7 (3.35, 20.3158)
  point P8 (3.35, 20.2481)
  point P9 (3.35, 17.7946)
  point P10 (3.35, 14.8556)
  point P11 (3.35, 11.5115)
  point P12 (3.35, 7.8533)
  point P13 (3.35, 3.981)
  point P14 (3.35, 0.0113)
  point P15 (3.35, 0)
  point P16 (3.35, -3.981)
  point P17 (3.35, -7.8533)
  point P18 (3.35, -11.5115)
  point P19 (3.35, -14.8556)
  point P20 (3.35, -18.2548)
  point P21 (3.35, -17.7946)
  point P22 (3.35, -20.2481)
  point P23 (3.35, -22.1493)
  point P24 (3.35, -23.4464)
  point P25 (3.35, -24.1039)
  point P26 (3.35, -24.1039)
  point P27 (3.35, -25.6727)
  point P28 (3.35, -23.4464)
  point P29 (3.35, -20.3158)
  point P30 (3.35, -20.1555)
  point P31 (3.35, -17.7109)
  point P32 (3.35, -14.7833)
  point P33 (3.35, -11.4524)
  point P34 (3.35, -7.8091)
  point P35 (3.35, -3.9529)
  point P36 (3.35, -0.0113)
  point P37 (3.35, 0.0113)
  point P38 (3.35, 3.981)
  point P39 (3.35, 7.8533)
  point P40 (3.35, 11.5115)
  point P41 (3.35, 14.8556)
  point P42 (3.35, 18.2548)
  point P43 (3.35, 17.7946)
  point P44 (3.35, 20.2481)
  point P45 (3.35, 22.1493)
  point P46 (3.35, 23.4464)
  dimension "d32" = 4
extrude "Extrusion5" cut sketch "Sketch7" against normal blind 2 contours L95 A122 L93 L92 | L95 L94 L93 A122 | A7 picked at (0.2225, 11.5619)
pattern_circular "Circular Pattern1" count 7 over 360 about axis through (0, 0, -10) along (0, 0, 1) of "Extrusion5"
sketch "Sketch8" plane through (0, 0, 4) normal (0, 0, 1) x (1, 0, 0)
  line L0 (16.8, 24.9006) -> (-16.8, 24.9006) projected
  line L1 (-16.8, 24.9006) -> (-16.8, 21.2406) projected
  line L2 (-16.8, 21.2406) -> (-21.2406, 16.8) projected
  line L3 (-21.2406, 16.8) -> (-24.9006, 16.8) projected
  line L4 (-24.9006, 16.8) -> (-24.9006, -16.8) projected
  line L5 (-24.9006, -16.8) -> (-21.2406, -16.8) projected
  line L6 (-21.2406, -16.8) -> (-16.8, -21.2406) projected
  line L7 (-16.8, -21.2406) -> (-16.8, -24.9006) projected
  line L8 (-16.8, -24.9006) -> (16.8, -24.9006) projected
  line L9 (16.8, -24.9006) -> (16.8, -21.2406) projected
  line L10 (16.8, -21.2406) -> (21.2406, -16.8) projected
  line L11 (21.2406, -16.8) -> (24.9006, -16.8) projected
  line L12 (24.9006, -16.8) -> (24.9006, 16.8) projected
  line L13 (24.9006, 16.8) -> (21.2406, 16.8) projected
  line L14 (21.2406, 16.8) -> (16.8, 21.2406) projected
  line L15 (16.8, 21.2406) -> (16.8, 24.9006) projected
  line L16 (-23.9006, -15.8) -> (-23.9006, 15.8)
  line L17 (-23.9006, 15.8) -> (-20.8264, 15.8)
  line L18 (-20.8264, 15.8) -> (-15.8, 20.8264)
  line L19 (-15.8, 20.8264) -> (-15.8, 23.9006)
  line L20 (-15.8, 23.9006) -> (15.8, 23.9006)
  line L21 (15.8, 23.9006) -> (15.8, 20.8264)
  line L22 (15.8, 20.8264) -> (20.8264, 15.8)
  line L23 (20.8264, 15.8) -> (23.9006, 15.8)
  line L24 (23.9006, 15.8) -> (23.9006, -15.8)
  line L25 (23.9006, -15.8) -> (20.8264, -15.8)
  line L26 (20.8264, -15.8) -> (15.8, -20.8264)
  line L27 (15.8, -20.8264) -> (15.8, -23.9006)
  line L28 (15.8, -23.9006) -> (-15.8, -23.9006)
  line L29 (-15.8, -23.9006) -> (-15.8, -20.8264)
  line L30 (-15.8, -20.8264) -> (-20.8264, -15.8)
  line L31 (-20.8264, -15.8) -> (-23.9006, -15.8)
  circle A0 centre (0, 0) radius 13.3 projected
  circle A1 centre (0, 0) radius 12.5
  dimension "d41" = 1
  dimension "d46" = 0.8
extrude "Extrusion6" add sketch "Sketch8" against normal up to surface (4 mm away)
sketch "Sketch9" plane through (0, 0, 0) normal (0, 0, -1) x (-1, 0, 0)
  circle A0 centre (-23.1006, 15) radius 1.05 projected
  circle A1 centre (23.1006, -15) radius 1.05 projected
  point P0 (0, 0)
extrude "Extrusion7" cut sketch "Sketch9" against normal through all
sketch "Skizze10" plane through (0, 0, 4) normal (0, 0, 1) x (1, 0, 0)
  circle A0 centre (23.1006, 15) radius 1.05 construction
  circle A1 centre (-23.1006, -15) radius 1.05 construction
  circle A2 centre (0, 0) radius 12.5 construction
  line L0 (16.8, 24.9006) -> (-16.8, 24.9006) construction
  line L1 (-16.8, 24.9006) -> (-16.8, 21.2406) projected
  line L2 (-16.8, 21.2406) -> (-21.2406, 16.8) projected
  line L3 (-21.2406, 16.8) -> (-24.9006, 16.8) projected
  line L4 (-24.9006, 16.8) -> (-24.9006, -16.8) construction
  line L5 (-24.9006, -16.8) -> (-21.2406, -16.8) projected
  line L6 (-21.2406, -16.8) -> (-16.8, -21.2406) projected
  line L7 (-16.8, -21.2406) -> (-16.8, -24.9006) projected
  line L8 (-16.8, -24.9006) -> (16.8, -24.9006) construction
  line L9 (16.8, -24.9006) -> (16.8, -21.2406) projected
  line L10 (16.8, -21.2406) -> (21.2406, -16.8) projected
  line L11 (21.2406, -16.8) -> (24.9006, -16.8) projected
  line L12 (24.9006, -16.8) -> (24.9006, 16.8) construction
  line L13 (24.9006, 16.8) -> (21.2406, 16.8) projected
  line L14 (21.2406, 16.8) -> (16.8, 21.2406) projected
  line L15 (16.8, 21.2406) -> (16.8, 24.9006) projected
  line L16 (-17, 25.1006) -> (17, 25.1006) construction
  line L17 (17, 25.1006) -> (17, 21.3235)
  line L18 (17, 21.3235) -> (21.3235, 17)
  line L19 (21.3235, 17) -> (25.1006, 17)
  line L20 (25.1006, 17) -> (25.1006, -17) construction
  line L21 (25.1006, -17) -> (21.3235, -17)
  line L22 (21.3235, -17) -> (17, -21.3235)
  line L23 (17, -21.3235) -> (17, -25.1006)
  line L24 (17, -25.1006) -> (-17, -25.1006) construction
  line L25 (-17, -25.1006) -> (-17, -21.3235)
  line L26 (-17, -21.3235) -> (-21.3235, -17)
  line L27 (-21.3235, -17) -> (-25.1006, -17)
  line L28 (-25.1006, -17) -> (-25.1006, 17) construction
  line L29 (-25.1006, 17) -> (-21.3235, 17)
  line L30 (-21.3235, 17) -> (-17, 21.3235)
  line L31 (-17, 21.3235) -> (-17, 25.1006)
  line L32 (-24.9006, 16.8) -> (-24.9006, 17)
  line L33 (-16.8, 24.9006) -> (-16.8, 21.2406) projected
  line L34 (-16.8, 24.9006) -> (-17, 24.9006)
  line L35 (16.8, 24.9006) -> (17, 24.9006)
  line L36 (24.9006, -16.8) -> (24.9006, 16.8) projected
  line L37 (24.9006, 16.8) -> (24.9006, 17)
  line L38 (24.9006, -16.8) -> (24.9006, -17)
  line L39 (-16.8, -24.9006) -> (16.8, -24.9006) projected
  line L40 (16.8, -24.9006) -> (17, -24.9006)
  line L41 (-16.8, -24.9006) -> (-17, -24.9006)
  line L42 (-24.9006, -16.8) -> (-21.2406, -16.8) projected
  line L43 (-24.9006, -16.8) -> (-24.9006, -17)
  dimension "d51" = 0.2
extrude "IM_offset" add sketch "Skizze10" against normal up to surface (4 mm away)
properties part number "20_Cube_Insert_CirAp_Guide_v3"
